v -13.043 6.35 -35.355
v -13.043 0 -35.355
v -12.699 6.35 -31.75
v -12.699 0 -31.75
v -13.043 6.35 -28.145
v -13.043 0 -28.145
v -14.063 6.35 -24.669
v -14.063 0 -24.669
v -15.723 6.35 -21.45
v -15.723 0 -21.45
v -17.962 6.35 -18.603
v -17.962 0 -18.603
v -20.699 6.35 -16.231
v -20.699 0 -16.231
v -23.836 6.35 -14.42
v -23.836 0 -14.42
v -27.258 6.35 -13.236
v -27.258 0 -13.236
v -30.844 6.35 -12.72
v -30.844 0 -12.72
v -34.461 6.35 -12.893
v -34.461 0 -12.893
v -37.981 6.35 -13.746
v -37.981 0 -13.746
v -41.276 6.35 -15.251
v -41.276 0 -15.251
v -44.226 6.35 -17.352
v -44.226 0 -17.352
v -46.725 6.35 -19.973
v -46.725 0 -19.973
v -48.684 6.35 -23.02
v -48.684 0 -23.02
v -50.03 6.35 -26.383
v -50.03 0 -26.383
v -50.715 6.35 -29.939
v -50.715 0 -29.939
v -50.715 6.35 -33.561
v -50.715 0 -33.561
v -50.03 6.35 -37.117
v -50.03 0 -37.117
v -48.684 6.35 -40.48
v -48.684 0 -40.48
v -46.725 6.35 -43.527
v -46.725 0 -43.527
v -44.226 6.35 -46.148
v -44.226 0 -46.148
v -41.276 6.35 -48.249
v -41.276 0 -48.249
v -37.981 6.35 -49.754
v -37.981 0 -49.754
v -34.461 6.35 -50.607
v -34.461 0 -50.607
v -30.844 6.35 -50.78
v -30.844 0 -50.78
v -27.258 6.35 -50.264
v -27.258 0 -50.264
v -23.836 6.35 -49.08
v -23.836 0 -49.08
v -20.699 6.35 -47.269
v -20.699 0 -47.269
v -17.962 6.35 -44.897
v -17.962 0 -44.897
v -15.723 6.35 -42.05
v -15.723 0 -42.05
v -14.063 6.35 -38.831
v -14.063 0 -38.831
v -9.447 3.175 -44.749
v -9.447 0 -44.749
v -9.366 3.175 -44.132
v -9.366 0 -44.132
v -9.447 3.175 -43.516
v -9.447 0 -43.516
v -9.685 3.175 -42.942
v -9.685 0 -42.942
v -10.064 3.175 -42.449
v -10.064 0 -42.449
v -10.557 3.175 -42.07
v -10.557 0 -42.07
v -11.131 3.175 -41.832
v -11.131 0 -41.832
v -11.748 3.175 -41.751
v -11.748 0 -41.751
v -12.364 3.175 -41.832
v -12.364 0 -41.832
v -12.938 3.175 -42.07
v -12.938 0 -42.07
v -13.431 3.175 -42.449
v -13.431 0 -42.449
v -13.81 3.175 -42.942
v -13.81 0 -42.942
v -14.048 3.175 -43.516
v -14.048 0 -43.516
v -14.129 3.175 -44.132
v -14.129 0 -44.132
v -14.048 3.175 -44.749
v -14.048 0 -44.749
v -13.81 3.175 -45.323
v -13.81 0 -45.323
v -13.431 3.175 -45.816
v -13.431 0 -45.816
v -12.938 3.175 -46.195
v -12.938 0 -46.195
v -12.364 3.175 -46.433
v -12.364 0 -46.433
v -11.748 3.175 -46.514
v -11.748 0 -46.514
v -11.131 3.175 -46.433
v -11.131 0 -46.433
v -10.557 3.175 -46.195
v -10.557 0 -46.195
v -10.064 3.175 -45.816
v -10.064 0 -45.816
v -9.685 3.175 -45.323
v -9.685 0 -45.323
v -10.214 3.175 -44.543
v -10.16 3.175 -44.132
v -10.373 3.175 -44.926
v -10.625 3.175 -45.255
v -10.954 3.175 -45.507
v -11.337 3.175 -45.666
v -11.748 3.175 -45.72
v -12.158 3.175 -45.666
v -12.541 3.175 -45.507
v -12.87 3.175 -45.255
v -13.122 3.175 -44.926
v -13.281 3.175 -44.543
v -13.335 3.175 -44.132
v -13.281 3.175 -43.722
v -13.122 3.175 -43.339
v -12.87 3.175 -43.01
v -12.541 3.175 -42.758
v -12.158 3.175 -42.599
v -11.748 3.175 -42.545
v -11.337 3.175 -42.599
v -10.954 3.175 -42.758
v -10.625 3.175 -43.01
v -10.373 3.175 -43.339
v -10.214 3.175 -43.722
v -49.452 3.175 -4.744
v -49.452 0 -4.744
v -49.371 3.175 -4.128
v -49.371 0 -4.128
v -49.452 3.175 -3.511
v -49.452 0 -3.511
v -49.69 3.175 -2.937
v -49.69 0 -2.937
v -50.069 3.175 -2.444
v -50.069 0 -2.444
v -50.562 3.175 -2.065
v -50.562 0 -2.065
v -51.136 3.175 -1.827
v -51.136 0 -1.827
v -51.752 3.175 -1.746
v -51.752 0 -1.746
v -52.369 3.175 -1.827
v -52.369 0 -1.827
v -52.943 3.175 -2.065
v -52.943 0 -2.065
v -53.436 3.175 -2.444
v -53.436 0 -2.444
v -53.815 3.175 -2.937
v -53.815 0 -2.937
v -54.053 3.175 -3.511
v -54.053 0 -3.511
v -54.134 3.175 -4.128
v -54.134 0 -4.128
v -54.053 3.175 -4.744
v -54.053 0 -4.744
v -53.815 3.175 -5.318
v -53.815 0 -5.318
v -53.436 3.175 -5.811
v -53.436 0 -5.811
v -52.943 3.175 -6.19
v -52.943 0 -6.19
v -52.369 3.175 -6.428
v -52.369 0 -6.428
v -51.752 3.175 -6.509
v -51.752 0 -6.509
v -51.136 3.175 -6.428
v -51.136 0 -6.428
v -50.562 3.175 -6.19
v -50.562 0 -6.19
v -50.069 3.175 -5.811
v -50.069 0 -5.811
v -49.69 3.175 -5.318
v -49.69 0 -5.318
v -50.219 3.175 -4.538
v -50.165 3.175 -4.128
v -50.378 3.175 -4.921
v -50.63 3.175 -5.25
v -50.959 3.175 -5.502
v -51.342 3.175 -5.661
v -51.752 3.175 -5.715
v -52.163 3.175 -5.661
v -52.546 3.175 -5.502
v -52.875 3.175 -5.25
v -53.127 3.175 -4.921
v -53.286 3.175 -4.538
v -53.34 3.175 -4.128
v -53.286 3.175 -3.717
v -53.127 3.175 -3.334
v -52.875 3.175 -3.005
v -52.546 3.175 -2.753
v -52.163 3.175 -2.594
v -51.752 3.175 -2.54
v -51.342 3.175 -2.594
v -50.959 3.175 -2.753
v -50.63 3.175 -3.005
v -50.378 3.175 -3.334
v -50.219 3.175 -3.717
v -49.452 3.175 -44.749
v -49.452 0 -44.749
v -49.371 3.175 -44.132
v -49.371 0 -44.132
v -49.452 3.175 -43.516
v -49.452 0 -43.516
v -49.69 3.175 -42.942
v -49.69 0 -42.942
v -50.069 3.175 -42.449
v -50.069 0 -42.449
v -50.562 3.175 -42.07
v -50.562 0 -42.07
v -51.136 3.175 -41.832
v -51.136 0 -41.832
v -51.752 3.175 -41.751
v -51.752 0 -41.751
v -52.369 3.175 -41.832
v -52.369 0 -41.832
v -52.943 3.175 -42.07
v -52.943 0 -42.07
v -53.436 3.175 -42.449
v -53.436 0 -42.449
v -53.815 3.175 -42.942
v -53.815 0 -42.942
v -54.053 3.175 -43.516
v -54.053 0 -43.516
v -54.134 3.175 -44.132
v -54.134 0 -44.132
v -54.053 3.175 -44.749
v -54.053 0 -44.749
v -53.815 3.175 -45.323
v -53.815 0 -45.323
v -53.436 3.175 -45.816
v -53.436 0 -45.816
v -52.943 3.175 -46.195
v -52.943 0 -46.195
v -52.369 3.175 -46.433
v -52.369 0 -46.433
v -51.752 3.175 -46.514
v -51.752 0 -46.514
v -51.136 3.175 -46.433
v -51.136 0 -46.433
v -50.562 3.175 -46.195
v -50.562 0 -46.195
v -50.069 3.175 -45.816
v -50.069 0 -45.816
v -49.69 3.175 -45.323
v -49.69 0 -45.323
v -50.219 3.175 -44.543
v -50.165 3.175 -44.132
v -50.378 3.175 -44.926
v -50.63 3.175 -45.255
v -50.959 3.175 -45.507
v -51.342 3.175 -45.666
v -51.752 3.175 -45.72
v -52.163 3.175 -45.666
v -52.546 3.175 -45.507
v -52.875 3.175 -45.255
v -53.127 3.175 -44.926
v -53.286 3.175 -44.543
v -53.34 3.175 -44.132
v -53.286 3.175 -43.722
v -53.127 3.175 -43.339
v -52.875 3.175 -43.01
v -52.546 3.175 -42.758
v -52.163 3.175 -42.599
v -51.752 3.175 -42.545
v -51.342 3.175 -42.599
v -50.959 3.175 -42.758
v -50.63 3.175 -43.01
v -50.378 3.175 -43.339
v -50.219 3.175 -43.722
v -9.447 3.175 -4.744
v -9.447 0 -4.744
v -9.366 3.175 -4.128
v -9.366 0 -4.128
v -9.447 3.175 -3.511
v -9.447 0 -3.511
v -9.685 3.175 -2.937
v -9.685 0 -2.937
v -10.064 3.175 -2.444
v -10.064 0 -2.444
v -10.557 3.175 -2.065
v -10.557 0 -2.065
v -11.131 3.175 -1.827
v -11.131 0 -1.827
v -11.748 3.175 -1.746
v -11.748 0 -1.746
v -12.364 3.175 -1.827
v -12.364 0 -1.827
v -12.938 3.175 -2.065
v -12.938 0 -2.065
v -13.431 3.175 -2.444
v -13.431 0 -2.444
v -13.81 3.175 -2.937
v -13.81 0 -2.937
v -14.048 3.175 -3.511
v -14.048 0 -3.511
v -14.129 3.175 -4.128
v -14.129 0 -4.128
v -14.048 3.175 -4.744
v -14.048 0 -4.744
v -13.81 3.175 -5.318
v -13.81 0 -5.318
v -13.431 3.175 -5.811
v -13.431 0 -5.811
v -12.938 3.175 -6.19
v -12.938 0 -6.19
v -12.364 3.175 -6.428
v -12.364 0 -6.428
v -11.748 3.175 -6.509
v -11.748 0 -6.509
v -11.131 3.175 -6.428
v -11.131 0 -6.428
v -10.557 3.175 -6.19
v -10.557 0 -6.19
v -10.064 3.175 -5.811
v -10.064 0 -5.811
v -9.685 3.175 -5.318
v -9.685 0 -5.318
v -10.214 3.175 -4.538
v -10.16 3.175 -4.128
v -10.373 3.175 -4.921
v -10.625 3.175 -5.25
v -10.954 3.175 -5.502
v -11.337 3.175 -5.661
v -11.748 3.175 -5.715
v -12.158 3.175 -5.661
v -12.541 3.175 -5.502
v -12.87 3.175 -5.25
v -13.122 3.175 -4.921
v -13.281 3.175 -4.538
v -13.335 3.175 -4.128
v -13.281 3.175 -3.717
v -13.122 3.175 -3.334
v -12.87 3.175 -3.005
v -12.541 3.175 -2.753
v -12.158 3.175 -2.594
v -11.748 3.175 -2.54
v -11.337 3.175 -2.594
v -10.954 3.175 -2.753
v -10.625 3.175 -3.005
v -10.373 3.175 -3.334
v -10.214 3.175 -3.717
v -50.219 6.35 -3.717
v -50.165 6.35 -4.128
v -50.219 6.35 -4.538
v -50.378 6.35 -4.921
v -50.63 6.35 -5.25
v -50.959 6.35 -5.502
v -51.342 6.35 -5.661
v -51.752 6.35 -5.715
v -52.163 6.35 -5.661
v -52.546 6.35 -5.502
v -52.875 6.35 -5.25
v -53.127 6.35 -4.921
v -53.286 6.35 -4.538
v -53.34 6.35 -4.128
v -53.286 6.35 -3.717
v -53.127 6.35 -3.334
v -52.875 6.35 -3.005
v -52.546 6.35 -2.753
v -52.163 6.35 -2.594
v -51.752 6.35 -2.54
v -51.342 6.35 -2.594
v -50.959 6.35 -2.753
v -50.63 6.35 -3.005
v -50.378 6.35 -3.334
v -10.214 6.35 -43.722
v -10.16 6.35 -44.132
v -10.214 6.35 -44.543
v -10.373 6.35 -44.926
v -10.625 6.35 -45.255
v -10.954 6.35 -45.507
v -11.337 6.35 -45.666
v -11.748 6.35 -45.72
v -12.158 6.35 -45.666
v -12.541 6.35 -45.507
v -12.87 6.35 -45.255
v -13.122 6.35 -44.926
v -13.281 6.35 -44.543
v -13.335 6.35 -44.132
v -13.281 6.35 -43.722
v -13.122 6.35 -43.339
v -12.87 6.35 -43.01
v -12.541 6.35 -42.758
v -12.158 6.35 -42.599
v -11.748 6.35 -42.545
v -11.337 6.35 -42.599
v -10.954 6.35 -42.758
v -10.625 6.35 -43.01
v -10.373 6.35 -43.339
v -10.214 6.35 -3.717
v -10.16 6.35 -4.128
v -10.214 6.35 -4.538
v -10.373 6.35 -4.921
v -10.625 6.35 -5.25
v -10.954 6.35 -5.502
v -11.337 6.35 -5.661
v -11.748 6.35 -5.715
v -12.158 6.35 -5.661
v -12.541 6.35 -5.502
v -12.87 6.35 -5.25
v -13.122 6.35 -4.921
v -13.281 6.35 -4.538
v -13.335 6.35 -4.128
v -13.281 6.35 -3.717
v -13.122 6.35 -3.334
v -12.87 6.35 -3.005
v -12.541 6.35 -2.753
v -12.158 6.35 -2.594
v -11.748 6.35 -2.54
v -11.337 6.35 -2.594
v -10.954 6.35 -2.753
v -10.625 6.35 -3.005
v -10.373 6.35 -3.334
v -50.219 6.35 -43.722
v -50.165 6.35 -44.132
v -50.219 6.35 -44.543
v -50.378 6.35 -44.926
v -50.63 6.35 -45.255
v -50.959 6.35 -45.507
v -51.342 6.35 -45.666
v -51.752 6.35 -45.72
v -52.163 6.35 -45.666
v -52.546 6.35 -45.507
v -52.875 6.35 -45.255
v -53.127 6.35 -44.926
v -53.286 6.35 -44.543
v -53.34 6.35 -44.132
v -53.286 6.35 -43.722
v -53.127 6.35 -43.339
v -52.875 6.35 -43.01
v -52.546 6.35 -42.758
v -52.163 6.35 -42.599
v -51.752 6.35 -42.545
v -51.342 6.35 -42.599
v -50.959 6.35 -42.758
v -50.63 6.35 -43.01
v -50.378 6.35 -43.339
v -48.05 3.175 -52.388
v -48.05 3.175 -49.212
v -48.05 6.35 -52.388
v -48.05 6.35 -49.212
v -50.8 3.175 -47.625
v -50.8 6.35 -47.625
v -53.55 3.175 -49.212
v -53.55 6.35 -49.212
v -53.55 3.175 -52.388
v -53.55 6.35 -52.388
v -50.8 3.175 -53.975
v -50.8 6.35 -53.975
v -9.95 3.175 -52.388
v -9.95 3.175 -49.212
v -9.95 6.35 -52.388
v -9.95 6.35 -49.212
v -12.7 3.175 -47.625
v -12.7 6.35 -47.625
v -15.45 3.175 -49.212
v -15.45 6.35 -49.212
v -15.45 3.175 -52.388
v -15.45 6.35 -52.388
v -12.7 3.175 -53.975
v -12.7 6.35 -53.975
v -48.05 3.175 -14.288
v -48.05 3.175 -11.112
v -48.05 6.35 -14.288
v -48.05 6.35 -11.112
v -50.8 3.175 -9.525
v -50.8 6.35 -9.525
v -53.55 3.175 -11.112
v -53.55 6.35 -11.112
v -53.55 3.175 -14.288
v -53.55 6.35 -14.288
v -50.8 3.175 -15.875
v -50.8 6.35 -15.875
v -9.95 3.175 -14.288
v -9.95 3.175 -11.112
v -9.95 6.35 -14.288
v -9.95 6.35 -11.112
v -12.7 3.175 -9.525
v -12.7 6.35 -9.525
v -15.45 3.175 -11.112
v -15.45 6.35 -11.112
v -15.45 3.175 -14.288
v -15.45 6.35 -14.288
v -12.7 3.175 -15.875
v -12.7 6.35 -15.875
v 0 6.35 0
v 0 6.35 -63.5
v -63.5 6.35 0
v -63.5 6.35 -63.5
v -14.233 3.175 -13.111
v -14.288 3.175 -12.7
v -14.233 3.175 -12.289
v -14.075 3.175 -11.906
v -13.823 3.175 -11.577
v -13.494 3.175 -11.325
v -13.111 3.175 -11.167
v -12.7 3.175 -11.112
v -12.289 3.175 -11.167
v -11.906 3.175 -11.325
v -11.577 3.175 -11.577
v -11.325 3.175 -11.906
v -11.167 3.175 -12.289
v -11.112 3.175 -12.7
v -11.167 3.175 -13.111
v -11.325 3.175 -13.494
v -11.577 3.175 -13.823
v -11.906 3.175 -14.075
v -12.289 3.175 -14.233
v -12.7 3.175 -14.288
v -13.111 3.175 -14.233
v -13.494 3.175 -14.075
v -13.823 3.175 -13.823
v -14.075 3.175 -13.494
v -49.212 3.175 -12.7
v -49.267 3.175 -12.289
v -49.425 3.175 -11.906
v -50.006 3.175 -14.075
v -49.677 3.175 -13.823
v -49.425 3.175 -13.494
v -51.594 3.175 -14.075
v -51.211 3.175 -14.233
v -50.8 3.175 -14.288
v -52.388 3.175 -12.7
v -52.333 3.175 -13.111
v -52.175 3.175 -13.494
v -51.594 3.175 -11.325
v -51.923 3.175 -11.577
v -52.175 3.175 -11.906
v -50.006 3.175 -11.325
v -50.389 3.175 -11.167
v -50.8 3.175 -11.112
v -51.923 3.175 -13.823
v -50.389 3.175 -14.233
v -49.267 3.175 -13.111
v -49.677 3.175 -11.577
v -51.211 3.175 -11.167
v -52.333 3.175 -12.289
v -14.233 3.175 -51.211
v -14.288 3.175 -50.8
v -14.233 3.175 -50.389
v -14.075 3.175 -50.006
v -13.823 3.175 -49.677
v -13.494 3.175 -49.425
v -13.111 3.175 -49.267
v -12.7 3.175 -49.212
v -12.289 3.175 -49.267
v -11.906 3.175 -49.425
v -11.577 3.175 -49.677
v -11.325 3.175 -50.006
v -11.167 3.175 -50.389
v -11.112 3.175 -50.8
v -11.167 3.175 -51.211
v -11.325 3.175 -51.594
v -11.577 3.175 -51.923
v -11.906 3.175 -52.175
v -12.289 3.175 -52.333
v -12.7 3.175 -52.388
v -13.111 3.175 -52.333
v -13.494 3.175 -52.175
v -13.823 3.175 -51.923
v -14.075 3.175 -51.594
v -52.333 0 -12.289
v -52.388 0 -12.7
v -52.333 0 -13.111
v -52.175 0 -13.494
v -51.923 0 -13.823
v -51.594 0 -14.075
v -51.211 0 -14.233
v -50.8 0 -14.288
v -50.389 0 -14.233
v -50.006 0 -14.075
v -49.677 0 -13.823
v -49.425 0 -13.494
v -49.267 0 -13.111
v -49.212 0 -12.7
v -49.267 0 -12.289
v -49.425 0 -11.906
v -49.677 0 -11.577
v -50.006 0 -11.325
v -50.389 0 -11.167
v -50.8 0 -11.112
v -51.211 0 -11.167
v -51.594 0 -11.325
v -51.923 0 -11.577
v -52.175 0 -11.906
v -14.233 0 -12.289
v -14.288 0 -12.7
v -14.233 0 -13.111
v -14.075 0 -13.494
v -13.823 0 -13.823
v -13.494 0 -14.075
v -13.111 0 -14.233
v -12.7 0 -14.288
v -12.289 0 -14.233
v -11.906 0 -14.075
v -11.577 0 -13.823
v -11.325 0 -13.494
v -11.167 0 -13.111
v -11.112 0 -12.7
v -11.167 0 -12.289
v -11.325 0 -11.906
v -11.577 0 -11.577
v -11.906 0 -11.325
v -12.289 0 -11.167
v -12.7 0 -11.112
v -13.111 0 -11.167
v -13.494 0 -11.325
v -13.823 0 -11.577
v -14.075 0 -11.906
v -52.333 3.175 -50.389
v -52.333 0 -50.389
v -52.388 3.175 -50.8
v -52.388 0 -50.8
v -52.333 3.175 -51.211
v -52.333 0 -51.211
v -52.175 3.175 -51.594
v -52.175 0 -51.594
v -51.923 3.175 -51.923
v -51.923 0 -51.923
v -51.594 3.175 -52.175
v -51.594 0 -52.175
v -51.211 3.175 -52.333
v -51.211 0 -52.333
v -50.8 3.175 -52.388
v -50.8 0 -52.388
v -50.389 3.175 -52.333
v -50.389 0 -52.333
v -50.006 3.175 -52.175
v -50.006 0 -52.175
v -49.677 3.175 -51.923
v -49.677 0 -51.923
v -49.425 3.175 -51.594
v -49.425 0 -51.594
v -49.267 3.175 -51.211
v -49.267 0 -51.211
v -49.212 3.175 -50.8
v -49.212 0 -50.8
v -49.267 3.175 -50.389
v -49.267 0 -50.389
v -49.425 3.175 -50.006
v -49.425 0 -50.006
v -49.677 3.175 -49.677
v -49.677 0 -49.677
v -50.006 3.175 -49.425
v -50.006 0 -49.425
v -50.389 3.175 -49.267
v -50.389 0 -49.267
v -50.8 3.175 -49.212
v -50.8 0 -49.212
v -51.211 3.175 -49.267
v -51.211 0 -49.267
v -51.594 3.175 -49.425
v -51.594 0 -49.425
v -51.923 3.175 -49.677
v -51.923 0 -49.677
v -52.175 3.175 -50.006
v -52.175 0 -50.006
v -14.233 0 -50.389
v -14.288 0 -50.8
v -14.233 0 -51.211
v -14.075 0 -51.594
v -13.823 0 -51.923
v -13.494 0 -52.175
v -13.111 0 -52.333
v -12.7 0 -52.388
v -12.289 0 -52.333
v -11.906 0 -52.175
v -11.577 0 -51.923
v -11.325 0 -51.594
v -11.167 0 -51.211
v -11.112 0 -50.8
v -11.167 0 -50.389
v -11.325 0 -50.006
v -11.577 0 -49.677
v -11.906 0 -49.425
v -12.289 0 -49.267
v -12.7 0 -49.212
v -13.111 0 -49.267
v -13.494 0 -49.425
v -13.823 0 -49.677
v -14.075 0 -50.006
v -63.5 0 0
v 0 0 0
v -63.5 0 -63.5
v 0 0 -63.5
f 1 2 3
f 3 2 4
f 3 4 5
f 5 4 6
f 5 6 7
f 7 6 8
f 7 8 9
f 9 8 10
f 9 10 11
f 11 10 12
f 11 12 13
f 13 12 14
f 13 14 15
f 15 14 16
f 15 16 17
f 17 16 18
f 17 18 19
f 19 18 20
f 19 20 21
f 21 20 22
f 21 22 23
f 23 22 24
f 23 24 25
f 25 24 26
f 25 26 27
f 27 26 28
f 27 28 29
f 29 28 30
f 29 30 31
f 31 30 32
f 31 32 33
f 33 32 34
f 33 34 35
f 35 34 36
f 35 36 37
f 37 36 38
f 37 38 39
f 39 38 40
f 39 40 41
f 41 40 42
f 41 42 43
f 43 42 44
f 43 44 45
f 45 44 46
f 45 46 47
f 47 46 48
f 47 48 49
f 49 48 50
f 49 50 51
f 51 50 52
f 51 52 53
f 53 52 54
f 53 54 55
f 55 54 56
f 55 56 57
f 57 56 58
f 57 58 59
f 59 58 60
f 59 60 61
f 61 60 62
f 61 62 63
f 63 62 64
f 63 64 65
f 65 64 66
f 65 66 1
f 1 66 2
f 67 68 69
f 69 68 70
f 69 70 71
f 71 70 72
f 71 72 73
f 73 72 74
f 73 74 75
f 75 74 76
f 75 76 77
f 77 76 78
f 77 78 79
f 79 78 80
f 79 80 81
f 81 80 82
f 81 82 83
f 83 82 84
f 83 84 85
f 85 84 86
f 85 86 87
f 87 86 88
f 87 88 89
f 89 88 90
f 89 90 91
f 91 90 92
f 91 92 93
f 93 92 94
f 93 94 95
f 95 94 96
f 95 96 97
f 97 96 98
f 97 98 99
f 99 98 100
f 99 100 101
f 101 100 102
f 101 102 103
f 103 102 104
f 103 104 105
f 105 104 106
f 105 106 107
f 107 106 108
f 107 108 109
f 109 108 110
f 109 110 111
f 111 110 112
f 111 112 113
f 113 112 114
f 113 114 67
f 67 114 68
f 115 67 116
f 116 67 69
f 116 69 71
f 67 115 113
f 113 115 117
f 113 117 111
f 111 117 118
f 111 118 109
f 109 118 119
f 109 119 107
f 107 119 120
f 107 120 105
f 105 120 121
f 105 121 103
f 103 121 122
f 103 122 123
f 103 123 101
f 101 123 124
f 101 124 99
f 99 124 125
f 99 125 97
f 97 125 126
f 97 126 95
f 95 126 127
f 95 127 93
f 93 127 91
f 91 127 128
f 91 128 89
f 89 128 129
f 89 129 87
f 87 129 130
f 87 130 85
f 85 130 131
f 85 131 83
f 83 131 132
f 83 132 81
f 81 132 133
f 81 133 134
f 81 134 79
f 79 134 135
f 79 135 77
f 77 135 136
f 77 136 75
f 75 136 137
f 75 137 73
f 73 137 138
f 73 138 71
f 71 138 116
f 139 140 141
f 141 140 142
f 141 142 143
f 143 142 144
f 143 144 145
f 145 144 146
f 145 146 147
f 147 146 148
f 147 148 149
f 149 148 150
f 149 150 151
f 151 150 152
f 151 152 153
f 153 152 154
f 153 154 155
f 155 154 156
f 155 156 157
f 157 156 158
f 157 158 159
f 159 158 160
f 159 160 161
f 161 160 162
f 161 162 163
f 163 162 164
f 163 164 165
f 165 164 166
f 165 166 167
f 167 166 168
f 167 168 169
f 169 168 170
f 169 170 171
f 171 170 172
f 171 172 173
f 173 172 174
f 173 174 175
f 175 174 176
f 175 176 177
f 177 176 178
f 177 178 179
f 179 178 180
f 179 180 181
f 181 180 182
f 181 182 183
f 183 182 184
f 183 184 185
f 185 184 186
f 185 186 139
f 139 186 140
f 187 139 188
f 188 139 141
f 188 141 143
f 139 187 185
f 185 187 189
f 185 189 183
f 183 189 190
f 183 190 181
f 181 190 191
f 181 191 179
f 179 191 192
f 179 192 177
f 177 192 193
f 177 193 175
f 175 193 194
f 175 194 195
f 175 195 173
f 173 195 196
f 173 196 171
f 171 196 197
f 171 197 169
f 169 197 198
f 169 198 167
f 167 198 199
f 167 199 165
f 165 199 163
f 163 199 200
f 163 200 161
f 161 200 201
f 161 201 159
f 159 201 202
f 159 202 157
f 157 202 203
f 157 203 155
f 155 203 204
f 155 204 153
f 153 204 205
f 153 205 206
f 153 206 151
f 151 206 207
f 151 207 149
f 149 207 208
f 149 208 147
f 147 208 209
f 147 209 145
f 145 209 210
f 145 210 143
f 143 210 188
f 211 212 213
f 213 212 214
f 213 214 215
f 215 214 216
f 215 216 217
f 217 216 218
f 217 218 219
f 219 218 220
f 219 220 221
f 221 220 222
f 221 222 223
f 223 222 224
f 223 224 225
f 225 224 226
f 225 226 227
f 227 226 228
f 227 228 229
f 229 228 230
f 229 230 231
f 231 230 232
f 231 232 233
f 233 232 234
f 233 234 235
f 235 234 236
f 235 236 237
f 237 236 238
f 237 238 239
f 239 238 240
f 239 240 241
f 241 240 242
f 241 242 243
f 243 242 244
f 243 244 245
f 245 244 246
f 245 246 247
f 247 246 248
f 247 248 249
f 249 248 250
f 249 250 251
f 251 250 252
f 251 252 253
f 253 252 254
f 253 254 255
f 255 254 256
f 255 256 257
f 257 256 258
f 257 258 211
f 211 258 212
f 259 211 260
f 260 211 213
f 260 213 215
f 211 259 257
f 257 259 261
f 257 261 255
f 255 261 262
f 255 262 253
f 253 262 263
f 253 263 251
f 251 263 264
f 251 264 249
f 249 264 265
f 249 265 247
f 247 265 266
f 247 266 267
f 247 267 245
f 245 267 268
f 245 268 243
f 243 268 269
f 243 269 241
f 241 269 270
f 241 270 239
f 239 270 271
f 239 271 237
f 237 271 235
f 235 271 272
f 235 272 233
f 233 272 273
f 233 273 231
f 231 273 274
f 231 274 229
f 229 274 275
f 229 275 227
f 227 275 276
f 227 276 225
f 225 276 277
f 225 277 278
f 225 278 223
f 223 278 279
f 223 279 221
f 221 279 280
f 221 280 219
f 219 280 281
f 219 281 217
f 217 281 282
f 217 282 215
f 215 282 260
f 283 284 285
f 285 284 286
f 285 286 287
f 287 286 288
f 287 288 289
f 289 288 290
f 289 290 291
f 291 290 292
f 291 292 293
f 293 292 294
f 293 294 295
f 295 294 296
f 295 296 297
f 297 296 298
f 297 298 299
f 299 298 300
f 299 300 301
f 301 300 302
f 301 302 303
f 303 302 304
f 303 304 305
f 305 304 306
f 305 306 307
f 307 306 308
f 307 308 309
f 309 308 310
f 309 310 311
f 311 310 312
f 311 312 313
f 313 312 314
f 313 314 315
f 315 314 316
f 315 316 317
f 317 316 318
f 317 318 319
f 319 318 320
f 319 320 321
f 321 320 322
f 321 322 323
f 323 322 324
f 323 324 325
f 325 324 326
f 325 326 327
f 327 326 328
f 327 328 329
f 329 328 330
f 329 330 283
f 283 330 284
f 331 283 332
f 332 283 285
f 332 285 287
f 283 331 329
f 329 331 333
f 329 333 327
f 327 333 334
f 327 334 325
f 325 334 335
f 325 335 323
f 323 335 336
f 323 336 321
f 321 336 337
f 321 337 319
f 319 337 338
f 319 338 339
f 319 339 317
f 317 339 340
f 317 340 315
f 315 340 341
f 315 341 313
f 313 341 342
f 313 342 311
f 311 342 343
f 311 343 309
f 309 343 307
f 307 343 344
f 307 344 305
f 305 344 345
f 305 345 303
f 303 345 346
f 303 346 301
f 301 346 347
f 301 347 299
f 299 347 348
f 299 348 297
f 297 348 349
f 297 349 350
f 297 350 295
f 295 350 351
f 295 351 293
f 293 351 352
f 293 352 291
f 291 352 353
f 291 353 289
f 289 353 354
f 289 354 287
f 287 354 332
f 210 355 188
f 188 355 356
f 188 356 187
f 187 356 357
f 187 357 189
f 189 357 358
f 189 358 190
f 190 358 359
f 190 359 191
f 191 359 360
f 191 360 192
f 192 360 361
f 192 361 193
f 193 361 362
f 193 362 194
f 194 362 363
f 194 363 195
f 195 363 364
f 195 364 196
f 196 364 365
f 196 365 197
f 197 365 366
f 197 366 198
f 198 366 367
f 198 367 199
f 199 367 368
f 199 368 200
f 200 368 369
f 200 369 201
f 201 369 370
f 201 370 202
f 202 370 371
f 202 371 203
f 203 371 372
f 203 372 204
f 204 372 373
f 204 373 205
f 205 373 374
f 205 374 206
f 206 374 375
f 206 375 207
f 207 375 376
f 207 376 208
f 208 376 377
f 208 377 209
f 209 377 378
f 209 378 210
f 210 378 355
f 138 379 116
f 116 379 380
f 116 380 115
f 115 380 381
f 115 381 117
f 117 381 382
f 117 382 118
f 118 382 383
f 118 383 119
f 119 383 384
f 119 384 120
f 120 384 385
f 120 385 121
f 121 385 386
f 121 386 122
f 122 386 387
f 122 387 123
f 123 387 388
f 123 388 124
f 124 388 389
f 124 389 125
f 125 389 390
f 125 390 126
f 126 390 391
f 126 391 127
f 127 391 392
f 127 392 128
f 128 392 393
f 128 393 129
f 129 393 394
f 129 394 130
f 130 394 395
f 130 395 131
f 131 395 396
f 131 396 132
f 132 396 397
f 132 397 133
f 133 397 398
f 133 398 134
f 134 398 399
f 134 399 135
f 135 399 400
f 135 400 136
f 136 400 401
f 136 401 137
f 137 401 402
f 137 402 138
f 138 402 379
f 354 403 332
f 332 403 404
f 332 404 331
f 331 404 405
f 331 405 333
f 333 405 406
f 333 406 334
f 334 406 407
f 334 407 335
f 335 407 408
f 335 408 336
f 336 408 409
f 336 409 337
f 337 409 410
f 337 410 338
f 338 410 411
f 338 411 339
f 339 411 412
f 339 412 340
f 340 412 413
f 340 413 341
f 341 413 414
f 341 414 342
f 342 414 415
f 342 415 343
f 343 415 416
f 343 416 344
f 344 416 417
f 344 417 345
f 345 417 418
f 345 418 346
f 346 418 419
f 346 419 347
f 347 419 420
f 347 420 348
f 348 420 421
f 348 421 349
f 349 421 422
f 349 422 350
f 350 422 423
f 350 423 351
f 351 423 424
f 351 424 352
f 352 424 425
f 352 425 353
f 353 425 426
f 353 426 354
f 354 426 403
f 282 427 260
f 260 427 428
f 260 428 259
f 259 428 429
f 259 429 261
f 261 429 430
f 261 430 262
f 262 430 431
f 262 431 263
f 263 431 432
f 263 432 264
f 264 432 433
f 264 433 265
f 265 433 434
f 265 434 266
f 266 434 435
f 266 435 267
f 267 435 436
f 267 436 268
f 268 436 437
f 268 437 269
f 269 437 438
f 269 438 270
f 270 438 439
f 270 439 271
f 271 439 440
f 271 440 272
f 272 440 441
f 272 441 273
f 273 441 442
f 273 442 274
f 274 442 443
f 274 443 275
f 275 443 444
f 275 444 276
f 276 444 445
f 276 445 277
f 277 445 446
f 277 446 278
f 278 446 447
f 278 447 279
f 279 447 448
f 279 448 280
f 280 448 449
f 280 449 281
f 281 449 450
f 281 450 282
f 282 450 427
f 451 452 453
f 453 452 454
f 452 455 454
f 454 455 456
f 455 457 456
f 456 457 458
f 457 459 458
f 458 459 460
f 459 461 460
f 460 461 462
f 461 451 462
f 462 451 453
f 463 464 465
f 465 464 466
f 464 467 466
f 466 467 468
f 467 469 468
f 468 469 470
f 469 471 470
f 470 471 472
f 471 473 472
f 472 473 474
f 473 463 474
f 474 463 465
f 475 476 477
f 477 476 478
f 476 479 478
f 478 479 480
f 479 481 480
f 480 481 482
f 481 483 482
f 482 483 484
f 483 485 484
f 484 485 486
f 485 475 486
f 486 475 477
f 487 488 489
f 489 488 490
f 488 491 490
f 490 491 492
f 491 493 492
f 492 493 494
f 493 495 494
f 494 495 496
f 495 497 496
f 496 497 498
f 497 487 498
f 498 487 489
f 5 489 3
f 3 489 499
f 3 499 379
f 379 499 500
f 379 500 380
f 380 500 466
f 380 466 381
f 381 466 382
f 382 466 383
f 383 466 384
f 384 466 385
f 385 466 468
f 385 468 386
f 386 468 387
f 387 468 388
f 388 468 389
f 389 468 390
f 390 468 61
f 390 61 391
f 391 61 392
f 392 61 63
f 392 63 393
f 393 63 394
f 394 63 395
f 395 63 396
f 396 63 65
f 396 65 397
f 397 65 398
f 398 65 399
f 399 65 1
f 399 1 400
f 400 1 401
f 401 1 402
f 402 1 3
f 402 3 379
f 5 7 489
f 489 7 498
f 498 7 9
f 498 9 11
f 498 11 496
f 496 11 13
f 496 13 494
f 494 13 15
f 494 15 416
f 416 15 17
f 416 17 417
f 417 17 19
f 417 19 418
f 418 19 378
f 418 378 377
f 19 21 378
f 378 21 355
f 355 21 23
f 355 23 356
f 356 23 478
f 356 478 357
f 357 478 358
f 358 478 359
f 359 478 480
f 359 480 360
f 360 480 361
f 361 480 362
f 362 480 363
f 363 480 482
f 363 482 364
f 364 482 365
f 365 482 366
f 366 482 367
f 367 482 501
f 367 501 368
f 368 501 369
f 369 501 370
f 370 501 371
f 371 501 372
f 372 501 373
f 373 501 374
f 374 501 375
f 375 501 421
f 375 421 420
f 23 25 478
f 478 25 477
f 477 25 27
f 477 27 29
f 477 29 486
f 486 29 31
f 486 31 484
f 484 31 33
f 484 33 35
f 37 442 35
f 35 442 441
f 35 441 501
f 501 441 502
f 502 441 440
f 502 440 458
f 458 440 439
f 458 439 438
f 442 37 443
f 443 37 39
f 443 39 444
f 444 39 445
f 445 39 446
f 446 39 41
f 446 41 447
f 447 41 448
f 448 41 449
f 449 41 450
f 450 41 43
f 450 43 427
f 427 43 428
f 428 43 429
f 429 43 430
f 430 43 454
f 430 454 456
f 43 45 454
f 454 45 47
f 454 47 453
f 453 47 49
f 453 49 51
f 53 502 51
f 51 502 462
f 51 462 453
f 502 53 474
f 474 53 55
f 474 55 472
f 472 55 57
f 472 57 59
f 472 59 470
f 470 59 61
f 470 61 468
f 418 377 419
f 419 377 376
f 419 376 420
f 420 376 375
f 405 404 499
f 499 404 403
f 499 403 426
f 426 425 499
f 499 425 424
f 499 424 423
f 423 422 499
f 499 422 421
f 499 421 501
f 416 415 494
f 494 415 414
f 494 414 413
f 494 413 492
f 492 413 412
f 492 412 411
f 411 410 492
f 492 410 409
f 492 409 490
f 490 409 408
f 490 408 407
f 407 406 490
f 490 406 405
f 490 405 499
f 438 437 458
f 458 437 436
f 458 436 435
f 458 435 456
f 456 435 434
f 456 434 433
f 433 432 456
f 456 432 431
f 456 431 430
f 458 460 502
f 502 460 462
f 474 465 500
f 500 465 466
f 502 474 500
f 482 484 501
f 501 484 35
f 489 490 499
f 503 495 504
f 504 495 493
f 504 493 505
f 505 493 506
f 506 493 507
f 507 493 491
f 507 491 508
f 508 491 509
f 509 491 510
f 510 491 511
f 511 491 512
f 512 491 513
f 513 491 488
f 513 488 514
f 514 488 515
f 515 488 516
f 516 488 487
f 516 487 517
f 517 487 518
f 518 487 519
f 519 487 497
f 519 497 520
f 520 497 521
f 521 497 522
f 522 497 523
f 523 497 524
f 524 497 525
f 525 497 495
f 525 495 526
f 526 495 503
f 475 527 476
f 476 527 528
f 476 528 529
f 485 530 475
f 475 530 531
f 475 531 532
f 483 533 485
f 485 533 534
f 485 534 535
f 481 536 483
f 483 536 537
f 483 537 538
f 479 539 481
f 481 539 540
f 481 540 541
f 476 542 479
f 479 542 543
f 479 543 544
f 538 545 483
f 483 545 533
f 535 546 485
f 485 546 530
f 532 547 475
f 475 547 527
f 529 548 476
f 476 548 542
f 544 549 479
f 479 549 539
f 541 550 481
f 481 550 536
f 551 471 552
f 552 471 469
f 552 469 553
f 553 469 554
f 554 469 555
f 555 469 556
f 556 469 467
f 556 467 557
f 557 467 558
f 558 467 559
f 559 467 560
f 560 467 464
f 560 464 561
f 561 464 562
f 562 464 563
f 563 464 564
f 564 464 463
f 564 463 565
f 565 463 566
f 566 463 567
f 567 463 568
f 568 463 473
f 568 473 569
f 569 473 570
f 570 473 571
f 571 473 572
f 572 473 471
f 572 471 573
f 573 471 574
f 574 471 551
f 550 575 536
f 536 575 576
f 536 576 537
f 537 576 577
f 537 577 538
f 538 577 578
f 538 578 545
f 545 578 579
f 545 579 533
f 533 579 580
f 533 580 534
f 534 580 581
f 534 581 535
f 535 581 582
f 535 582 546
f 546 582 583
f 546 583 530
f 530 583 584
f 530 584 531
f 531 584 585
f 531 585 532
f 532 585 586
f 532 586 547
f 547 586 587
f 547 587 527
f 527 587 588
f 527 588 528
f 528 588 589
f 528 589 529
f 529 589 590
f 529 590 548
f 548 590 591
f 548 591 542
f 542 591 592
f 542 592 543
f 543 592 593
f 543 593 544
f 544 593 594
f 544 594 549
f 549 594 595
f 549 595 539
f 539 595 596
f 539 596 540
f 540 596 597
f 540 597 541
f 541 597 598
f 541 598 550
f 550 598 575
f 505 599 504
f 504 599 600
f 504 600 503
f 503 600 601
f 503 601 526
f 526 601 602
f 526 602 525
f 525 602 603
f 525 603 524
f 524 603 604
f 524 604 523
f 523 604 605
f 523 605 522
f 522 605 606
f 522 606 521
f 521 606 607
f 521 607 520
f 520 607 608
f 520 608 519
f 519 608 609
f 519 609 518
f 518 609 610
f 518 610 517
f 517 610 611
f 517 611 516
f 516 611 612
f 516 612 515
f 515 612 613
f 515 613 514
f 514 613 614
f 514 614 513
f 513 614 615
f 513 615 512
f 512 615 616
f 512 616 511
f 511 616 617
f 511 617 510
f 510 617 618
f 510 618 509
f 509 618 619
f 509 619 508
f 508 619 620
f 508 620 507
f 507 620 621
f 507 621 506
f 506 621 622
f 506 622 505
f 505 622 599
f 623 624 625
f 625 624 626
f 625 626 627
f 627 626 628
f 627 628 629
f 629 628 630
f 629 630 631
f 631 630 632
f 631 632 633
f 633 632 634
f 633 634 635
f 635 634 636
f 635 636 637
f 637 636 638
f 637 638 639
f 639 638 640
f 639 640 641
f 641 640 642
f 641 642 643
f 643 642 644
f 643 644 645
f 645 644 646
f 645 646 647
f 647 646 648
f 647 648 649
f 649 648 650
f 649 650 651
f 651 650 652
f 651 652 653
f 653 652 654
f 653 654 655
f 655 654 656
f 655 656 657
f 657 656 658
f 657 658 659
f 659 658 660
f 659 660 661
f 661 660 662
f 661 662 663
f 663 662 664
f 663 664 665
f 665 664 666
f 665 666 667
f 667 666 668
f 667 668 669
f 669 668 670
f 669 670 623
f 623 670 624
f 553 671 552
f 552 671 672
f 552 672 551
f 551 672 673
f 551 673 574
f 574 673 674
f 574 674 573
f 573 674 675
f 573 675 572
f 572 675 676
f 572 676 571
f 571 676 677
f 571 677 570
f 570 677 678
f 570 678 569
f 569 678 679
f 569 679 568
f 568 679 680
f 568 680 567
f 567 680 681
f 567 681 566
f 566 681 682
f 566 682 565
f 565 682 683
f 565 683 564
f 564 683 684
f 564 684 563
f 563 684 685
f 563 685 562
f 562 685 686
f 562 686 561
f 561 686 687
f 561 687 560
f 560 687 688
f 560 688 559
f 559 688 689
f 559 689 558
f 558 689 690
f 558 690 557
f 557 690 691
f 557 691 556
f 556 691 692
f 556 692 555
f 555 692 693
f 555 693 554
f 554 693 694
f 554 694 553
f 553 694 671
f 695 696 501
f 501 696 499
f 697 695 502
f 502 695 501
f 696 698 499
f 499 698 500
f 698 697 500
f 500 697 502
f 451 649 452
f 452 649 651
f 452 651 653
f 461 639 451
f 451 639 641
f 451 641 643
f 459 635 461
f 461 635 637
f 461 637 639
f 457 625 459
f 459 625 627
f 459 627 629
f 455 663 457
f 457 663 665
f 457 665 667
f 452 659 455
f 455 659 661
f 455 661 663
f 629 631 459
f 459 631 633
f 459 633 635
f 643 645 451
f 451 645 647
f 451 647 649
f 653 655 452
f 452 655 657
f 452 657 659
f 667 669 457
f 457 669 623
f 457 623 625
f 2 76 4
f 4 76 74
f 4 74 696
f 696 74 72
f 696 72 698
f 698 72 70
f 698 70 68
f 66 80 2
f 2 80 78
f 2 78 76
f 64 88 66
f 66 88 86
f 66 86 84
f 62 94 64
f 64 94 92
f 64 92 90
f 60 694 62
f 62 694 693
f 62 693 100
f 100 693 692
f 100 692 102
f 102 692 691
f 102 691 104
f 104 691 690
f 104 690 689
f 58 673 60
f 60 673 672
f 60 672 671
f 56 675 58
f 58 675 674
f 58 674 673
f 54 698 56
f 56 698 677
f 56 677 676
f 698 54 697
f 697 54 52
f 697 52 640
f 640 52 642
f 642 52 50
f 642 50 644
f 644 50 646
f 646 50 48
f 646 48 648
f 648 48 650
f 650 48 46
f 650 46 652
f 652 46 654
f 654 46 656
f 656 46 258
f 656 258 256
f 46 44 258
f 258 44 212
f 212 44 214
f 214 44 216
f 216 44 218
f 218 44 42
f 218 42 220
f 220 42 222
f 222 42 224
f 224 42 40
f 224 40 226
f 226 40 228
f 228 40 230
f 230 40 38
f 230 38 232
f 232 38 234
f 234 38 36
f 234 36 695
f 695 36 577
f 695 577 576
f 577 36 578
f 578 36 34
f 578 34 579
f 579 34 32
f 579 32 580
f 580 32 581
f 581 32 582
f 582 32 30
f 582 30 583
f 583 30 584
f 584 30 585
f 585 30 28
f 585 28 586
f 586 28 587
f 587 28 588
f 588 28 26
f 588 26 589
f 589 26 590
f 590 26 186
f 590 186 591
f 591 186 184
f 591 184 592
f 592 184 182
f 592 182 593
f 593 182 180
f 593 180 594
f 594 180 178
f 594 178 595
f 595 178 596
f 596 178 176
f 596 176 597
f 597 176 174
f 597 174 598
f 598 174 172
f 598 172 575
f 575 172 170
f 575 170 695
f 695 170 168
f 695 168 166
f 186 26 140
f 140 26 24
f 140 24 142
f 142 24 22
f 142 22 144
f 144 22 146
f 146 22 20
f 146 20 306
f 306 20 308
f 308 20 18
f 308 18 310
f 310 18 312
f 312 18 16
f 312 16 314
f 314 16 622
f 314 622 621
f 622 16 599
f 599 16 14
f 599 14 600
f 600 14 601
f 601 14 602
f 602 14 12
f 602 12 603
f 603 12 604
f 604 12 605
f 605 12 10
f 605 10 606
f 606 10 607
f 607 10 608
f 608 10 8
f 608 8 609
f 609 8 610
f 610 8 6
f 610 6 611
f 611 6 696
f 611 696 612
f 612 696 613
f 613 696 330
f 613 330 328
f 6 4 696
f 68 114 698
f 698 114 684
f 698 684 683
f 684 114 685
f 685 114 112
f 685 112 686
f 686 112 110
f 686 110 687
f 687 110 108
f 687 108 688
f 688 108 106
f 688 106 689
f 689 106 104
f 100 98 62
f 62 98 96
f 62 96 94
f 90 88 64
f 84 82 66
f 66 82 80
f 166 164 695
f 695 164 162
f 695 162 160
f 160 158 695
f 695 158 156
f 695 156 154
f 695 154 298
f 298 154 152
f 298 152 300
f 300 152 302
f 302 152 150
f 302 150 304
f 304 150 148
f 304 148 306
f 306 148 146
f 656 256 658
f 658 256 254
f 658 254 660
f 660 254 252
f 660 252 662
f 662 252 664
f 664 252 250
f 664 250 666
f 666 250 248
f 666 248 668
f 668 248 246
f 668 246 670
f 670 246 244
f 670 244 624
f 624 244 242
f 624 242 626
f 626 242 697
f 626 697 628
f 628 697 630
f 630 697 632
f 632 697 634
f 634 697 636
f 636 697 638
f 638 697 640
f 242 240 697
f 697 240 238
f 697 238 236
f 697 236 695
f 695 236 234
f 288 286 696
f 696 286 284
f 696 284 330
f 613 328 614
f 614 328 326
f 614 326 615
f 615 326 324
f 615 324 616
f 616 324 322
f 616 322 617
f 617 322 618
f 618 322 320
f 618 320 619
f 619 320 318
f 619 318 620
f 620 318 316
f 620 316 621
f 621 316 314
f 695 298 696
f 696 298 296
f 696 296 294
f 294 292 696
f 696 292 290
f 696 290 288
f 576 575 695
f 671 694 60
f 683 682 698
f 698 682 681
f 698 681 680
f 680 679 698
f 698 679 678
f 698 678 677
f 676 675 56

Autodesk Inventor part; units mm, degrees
ref_plane "YZ Plane" through (0, 0, 0) normal (1, 0, 0) x (0, 1, 0)
ref_plane "XZ Plane" through (0, 0, 0) normal (0, 1, 0) x (-1, 0, 0)
ref_plane "XY Plane" through (0, 0, 0) normal (0, 0, 1) x (1, 0, 0)
sketch "Sketch1" plane through (0, 0, 0) normal (0, 1, 0) x (-1, 0, 0)
  line L0 (0, 0) -> (63.5, 0)
  line L1 (63.5, 0) -> (63.5, -63.5)
  line L2 (63.5, -63.5) -> (0, -63.5)
  line L3 (0, -63.5) -> (0, 0)
  line L4 (0, -31.75) -> (31.75, -31.75)
  line L5 (31.75, -31.75) -> (31.75, -63.5)
  line L6 (31.75, -31.75) -> (12.7, -31.75)
  line L7 (31.75, -31.75) -> (50.8, -31.75) construction
  line L8 (12.7, -31.75) -> (12.7, -50.8)
  circle A0 centre (12.7, -50.8) radius 1.5875
  circle A1 centre (50.8, -50.8) radius 1.5875
  circle A2 centre (12.7, -12.7) radius 1.5875
  circle A3 centre (50.8, -12.7) radius 1.5875
  dimension "d0" = 63.5
  dimension "d1" = 63.5
  dimension "d2" = 19.05
  dimension "d3" = 180
  dimension "d4" = 19.05
  dimension "d5" = 3.175
  dimension "d8" = 38.1
  dimension "d11" = 38.1
extrude "Extrusion1" add sketch "Sketch1" along normal blind 3.175
sketch "Sketch2" plane through (0, 3.175, 0) normal (0, 1, 0) x (1, 0, 0)
  circle A0 centre (-12.7, 12.7) radius 1.5875 projected
  line L0 (-12.7, 15.875) -> (-9.9504, 14.2875)
  line L1 (-9.9504, 14.2875) -> (-9.9504, 11.1125)
  line L2 (-9.9504, 11.1125) -> (-12.7, 9.525)
  line L3 (-12.7, 9.525) -> (-15.4496, 11.1125)
  line L4 (-15.4496, 11.1125) -> (-15.4496, 14.2875)
  line L5 (-15.4496, 14.2875) -> (-12.7, 15.875)
  circle A1 centre (-50.8, 12.7) radius 1.5875 projected
  circle A2 centre (-12.7, 12.7) radius 1.5875 projected
  circle A3 centre (-50.8, 50.8) radius 1.5875 projected
  circle A4 centre (-12.7, 50.8) radius 1.5875 projected
  line L6 (0, 63.5) -> (-63.5, 63.5) projected
  line L7 (-63.5, 63.5) -> (-63.5, 0) projected
  line L8 (-63.5, 0) -> (0, 0) projected
  line L9 (0, 0) -> (0, 63.5) projected
  line L10 (-50.8, 15.875) -> (-48.0504, 14.2875)
  line L11 (-48.0504, 11.1125) -> (-50.8, 9.525)
  line L12 (-50.8, 9.525) -> (-53.5496, 11.1125)
  line L13 (-53.5496, 11.1125) -> (-53.5496, 14.2875)
  line L14 (-53.5496, 14.2875) -> (-50.8, 15.875)
  line L15 (-48.0504, 14.2875) -> (-48.0504, 11.1125)
  line L16 (-12.7, 53.975) -> (-9.9504, 52.3875)
  line L17 (-9.9504, 49.2125) -> (-12.7, 47.625)
  line L18 (-12.7, 47.625) -> (-15.4496, 49.2125)
  line L19 (-15.4496, 49.2125) -> (-15.4496, 52.3875)
  line L20 (-15.4496, 52.3875) -> (-12.7, 53.975)
  line L21 (-9.9504, 52.3875) -> (-9.9504, 49.2125)
  line L22 (-50.8, 53.975) -> (-48.0504, 52.3875)
  line L23 (-48.0504, 49.2125) -> (-50.8, 47.625)
  line L24 (-50.8, 47.625) -> (-53.5496, 49.2125)
  line L25 (-53.5496, 49.2125) -> (-53.5496, 52.3875)
  line L26 (-53.5496, 52.3875) -> (-50.8, 53.975)
  line L27 (-48.0504, 52.3875) -> (-48.0504, 49.2125)
  dimension "d16" = 6.35
  dimension "d19" = 38.1
  dimension "d22" = 38.1
extrude "Extrusion2" add sketch "Sketch2" along normal blind 3.175 contours L9 L8 L7 L6
sketch "Sketch4" plane through (0, 6.35, 0) normal (0, 1, 0) x (1, 0, 0)
  line L0 (-31.75, 24.13) -> (-31.75, 0)
  line L1 (-31.75, 24.13) -> (-11.7475, 24.13)
  line L2 (-11.7475, 24.13) -> (-11.7475, 44.1325)
  circle A0 centre (-11.7475, 44.1325) radius 1.5875
  circle A1 centre (-51.7525, 44.1325) radius 1.5875
  circle A2 centre (-11.7475, 4.1275) radius 1.5875
  circle A3 centre (-51.7525, 4.1275) radius 1.5875
  circle A4 centre (-11.7475, 44.1325) radius 2.3812
  point P0 (0, 0)
  dimension "d41" = 20.0025
  dimension "d42" = 24.13
  dimension "d43" = 3.175
  dimension "d44" = 40.005
  dimension "d45" = 40.005
  dimension "d46" = 4.7625
extrude "Extrusion3" cut sketch "Sketch4" against normal up to surface (6.35 mm away) contours A0 | A1 | A2 | A3
sketch "Sketch5" plane through (0, 0, 0) normal (0, -1, 0) x (1, 0, 0)
  circle A0 centre (-51.7525, -4.1275) radius 1.5875 projected
  circle A1 centre (-11.7475, -4.1275) radius 1.5875 projected
  circle A2 centre (-51.7525, -44.1325) radius 1.5875 projected
  circle A3 centre (-11.7475, -44.1325) radius 1.5875 projected
  circle A4 centre (-51.7525, -4.1275) radius 2.3813
  circle A5 centre (-51.7525, -44.1325) radius 2.3812
  circle A6 centre (-11.7475, -44.1325) radius 2.3812
  circle A7 centre (-11.7475, -4.1275) radius 2.3812
  point P0 (0, 0)
  dimension "d51" = 4.7625
  dimension "d52" = 4.7625
  dimension "d53" = 4.7625
  dimension "d54" = 4.7625
extrude "Extrusion4" cut sketch "Sketch5" against normal blind 3.175 contours A0 | A1 | A2 | A3 | A4 | A5 | A6 | A7
sketch "Sketch6" plane through (0, 6.35, 0) normal (0, 1, 0) x (1, 0, 0)
  circle A0 centre (-51.7525, 4.1275) radius 1.5875 projected
  circle A1 centre (-11.7475, 44.1325) radius 1.5875 projected
  circle A2 centre (-11.7475, 4.1275) radius 1.5875 projected
  circle A3 centre (-51.7525, 44.1325) radius 1.5875 projected
  line L0 (-48.0504, 52.3875) -> (-48.0504, 49.2125) projected
  line L1 (-48.0504, 49.2125) -> (-50.8, 47.625) projected
  line L2 (-50.8, 47.625) -> (-53.5496, 49.2125) projected
  line L3 (-53.5496, 49.2125) -> (-53.5496, 52.3875) projected
  line L4 (-53.5496, 52.3875) -> (-50.8, 53.975) projected
  line L5 (-50.8, 53.975) -> (-48.0504, 52.3875) projected
  line L6 (-9.9504, 52.3875) -> (-9.9504, 49.2125) projected
  line L7 (-9.9504, 49.2125) -> (-12.7, 47.625) projected
  line L8 (-12.7, 47.625) -> (-15.4496, 49.2125) projected
  line L9 (-15.4496, 49.2125) -> (-15.4496, 52.3875) projected
  line L10 (-15.4496, 52.3875) -> (-12.7, 53.975) projected
  line L11 (-12.7, 53.975) -> (-9.9504, 52.3875) projected
  line L12 (-48.0504, 14.2875) -> (-48.0504, 11.1125) projected
  line L13 (-48.0504, 11.1125) -> (-50.8, 9.525) projected
  line L14 (-50.8, 9.525) -> (-53.5496, 11.1125) projected
  line L15 (-53.5496, 11.1125) -> (-53.5496, 14.2875) projected
  line L16 (-53.5496, 14.2875) -> (-50.8, 15.875) projected
  line L17 (-50.8, 15.875) -> (-48.0504, 14.2875) projected
  line L18 (-9.9504, 14.2875) -> (-9.9504, 11.1125) projected
  line L19 (-9.9504, 11.1125) -> (-12.7, 9.525) projected
  line L20 (-12.7, 9.525) -> (-15.4496, 11.1125) projected
  line L21 (-15.4496, 11.1125) -> (-15.4496, 14.2875) projected
  line L22 (-15.4496, 14.2875) -> (-12.7, 15.875) projected
  line L23 (-12.7, 15.875) -> (-9.9504, 14.2875) projected
  line L24 (0, 63.5) -> (-63.5, 63.5) projected
  line L25 (-63.5, 63.5) -> (-63.5, 0) projected
  line L26 (-63.5, 0) -> (0, 0) projected
  line L27 (0, 0) -> (0, 63.5) projected
  circle A4 centre (-31.75, 31.75) radius 19.0514
extrude "Extrusion5" cut sketch "Sketch6" against normal up to surface (6.35 mm away) contours A4
properties part number "lidarMount"
